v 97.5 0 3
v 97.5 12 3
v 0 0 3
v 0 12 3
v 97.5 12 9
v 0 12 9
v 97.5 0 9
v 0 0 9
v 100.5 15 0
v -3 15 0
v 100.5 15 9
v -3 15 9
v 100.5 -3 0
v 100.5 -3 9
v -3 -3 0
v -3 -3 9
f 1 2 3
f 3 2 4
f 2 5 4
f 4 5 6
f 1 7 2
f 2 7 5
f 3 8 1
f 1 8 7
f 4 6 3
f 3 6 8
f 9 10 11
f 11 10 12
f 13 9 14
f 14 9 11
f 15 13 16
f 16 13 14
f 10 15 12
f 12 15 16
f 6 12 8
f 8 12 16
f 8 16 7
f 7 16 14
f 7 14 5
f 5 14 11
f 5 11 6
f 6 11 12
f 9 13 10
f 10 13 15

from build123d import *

# Parameters (mm, degrees)
SKETCH1_W           = 97.5
SKETCH1_H           = 12
BOSS_EXTRUDE1_DEPTH = 3
SKETCH2_W           = 103.5
SKETCH2_H           = 18
SKETCH2_W_2         = 97.5
SKETCH2_H_2         = 12
BOSS_EXTRUDE2_DEPTH = 9


with BuildPart() as part:
    # Sketch1 → Boss-Extrude1 (new body)
    with BuildSketch(Plane.XY):
        with Locations((48.75, 6)):
            Rectangle(SKETCH1_W, SKETCH1_H)
    extrude(amount=BOSS_EXTRUDE1_DEPTH)

    # Sketch2 → Boss-Extrude2 (add)
    with BuildSketch(Plane(origin=(0, 0, 0), x_dir=(-1, 0, 0), z_dir=(0, 0, -1))):
        with Locations((-48.75, 6)):
            Rectangle(SKETCH2_W, SKETCH2_H)
        with Locations((-48.75, 6)):
            Rectangle(SKETCH2_W_2, SKETCH2_H_2, mode=Mode.SUBTRACT)
    extrude(amount=-BOSS_EXTRUDE2_DEPTH)


solid = part.part
